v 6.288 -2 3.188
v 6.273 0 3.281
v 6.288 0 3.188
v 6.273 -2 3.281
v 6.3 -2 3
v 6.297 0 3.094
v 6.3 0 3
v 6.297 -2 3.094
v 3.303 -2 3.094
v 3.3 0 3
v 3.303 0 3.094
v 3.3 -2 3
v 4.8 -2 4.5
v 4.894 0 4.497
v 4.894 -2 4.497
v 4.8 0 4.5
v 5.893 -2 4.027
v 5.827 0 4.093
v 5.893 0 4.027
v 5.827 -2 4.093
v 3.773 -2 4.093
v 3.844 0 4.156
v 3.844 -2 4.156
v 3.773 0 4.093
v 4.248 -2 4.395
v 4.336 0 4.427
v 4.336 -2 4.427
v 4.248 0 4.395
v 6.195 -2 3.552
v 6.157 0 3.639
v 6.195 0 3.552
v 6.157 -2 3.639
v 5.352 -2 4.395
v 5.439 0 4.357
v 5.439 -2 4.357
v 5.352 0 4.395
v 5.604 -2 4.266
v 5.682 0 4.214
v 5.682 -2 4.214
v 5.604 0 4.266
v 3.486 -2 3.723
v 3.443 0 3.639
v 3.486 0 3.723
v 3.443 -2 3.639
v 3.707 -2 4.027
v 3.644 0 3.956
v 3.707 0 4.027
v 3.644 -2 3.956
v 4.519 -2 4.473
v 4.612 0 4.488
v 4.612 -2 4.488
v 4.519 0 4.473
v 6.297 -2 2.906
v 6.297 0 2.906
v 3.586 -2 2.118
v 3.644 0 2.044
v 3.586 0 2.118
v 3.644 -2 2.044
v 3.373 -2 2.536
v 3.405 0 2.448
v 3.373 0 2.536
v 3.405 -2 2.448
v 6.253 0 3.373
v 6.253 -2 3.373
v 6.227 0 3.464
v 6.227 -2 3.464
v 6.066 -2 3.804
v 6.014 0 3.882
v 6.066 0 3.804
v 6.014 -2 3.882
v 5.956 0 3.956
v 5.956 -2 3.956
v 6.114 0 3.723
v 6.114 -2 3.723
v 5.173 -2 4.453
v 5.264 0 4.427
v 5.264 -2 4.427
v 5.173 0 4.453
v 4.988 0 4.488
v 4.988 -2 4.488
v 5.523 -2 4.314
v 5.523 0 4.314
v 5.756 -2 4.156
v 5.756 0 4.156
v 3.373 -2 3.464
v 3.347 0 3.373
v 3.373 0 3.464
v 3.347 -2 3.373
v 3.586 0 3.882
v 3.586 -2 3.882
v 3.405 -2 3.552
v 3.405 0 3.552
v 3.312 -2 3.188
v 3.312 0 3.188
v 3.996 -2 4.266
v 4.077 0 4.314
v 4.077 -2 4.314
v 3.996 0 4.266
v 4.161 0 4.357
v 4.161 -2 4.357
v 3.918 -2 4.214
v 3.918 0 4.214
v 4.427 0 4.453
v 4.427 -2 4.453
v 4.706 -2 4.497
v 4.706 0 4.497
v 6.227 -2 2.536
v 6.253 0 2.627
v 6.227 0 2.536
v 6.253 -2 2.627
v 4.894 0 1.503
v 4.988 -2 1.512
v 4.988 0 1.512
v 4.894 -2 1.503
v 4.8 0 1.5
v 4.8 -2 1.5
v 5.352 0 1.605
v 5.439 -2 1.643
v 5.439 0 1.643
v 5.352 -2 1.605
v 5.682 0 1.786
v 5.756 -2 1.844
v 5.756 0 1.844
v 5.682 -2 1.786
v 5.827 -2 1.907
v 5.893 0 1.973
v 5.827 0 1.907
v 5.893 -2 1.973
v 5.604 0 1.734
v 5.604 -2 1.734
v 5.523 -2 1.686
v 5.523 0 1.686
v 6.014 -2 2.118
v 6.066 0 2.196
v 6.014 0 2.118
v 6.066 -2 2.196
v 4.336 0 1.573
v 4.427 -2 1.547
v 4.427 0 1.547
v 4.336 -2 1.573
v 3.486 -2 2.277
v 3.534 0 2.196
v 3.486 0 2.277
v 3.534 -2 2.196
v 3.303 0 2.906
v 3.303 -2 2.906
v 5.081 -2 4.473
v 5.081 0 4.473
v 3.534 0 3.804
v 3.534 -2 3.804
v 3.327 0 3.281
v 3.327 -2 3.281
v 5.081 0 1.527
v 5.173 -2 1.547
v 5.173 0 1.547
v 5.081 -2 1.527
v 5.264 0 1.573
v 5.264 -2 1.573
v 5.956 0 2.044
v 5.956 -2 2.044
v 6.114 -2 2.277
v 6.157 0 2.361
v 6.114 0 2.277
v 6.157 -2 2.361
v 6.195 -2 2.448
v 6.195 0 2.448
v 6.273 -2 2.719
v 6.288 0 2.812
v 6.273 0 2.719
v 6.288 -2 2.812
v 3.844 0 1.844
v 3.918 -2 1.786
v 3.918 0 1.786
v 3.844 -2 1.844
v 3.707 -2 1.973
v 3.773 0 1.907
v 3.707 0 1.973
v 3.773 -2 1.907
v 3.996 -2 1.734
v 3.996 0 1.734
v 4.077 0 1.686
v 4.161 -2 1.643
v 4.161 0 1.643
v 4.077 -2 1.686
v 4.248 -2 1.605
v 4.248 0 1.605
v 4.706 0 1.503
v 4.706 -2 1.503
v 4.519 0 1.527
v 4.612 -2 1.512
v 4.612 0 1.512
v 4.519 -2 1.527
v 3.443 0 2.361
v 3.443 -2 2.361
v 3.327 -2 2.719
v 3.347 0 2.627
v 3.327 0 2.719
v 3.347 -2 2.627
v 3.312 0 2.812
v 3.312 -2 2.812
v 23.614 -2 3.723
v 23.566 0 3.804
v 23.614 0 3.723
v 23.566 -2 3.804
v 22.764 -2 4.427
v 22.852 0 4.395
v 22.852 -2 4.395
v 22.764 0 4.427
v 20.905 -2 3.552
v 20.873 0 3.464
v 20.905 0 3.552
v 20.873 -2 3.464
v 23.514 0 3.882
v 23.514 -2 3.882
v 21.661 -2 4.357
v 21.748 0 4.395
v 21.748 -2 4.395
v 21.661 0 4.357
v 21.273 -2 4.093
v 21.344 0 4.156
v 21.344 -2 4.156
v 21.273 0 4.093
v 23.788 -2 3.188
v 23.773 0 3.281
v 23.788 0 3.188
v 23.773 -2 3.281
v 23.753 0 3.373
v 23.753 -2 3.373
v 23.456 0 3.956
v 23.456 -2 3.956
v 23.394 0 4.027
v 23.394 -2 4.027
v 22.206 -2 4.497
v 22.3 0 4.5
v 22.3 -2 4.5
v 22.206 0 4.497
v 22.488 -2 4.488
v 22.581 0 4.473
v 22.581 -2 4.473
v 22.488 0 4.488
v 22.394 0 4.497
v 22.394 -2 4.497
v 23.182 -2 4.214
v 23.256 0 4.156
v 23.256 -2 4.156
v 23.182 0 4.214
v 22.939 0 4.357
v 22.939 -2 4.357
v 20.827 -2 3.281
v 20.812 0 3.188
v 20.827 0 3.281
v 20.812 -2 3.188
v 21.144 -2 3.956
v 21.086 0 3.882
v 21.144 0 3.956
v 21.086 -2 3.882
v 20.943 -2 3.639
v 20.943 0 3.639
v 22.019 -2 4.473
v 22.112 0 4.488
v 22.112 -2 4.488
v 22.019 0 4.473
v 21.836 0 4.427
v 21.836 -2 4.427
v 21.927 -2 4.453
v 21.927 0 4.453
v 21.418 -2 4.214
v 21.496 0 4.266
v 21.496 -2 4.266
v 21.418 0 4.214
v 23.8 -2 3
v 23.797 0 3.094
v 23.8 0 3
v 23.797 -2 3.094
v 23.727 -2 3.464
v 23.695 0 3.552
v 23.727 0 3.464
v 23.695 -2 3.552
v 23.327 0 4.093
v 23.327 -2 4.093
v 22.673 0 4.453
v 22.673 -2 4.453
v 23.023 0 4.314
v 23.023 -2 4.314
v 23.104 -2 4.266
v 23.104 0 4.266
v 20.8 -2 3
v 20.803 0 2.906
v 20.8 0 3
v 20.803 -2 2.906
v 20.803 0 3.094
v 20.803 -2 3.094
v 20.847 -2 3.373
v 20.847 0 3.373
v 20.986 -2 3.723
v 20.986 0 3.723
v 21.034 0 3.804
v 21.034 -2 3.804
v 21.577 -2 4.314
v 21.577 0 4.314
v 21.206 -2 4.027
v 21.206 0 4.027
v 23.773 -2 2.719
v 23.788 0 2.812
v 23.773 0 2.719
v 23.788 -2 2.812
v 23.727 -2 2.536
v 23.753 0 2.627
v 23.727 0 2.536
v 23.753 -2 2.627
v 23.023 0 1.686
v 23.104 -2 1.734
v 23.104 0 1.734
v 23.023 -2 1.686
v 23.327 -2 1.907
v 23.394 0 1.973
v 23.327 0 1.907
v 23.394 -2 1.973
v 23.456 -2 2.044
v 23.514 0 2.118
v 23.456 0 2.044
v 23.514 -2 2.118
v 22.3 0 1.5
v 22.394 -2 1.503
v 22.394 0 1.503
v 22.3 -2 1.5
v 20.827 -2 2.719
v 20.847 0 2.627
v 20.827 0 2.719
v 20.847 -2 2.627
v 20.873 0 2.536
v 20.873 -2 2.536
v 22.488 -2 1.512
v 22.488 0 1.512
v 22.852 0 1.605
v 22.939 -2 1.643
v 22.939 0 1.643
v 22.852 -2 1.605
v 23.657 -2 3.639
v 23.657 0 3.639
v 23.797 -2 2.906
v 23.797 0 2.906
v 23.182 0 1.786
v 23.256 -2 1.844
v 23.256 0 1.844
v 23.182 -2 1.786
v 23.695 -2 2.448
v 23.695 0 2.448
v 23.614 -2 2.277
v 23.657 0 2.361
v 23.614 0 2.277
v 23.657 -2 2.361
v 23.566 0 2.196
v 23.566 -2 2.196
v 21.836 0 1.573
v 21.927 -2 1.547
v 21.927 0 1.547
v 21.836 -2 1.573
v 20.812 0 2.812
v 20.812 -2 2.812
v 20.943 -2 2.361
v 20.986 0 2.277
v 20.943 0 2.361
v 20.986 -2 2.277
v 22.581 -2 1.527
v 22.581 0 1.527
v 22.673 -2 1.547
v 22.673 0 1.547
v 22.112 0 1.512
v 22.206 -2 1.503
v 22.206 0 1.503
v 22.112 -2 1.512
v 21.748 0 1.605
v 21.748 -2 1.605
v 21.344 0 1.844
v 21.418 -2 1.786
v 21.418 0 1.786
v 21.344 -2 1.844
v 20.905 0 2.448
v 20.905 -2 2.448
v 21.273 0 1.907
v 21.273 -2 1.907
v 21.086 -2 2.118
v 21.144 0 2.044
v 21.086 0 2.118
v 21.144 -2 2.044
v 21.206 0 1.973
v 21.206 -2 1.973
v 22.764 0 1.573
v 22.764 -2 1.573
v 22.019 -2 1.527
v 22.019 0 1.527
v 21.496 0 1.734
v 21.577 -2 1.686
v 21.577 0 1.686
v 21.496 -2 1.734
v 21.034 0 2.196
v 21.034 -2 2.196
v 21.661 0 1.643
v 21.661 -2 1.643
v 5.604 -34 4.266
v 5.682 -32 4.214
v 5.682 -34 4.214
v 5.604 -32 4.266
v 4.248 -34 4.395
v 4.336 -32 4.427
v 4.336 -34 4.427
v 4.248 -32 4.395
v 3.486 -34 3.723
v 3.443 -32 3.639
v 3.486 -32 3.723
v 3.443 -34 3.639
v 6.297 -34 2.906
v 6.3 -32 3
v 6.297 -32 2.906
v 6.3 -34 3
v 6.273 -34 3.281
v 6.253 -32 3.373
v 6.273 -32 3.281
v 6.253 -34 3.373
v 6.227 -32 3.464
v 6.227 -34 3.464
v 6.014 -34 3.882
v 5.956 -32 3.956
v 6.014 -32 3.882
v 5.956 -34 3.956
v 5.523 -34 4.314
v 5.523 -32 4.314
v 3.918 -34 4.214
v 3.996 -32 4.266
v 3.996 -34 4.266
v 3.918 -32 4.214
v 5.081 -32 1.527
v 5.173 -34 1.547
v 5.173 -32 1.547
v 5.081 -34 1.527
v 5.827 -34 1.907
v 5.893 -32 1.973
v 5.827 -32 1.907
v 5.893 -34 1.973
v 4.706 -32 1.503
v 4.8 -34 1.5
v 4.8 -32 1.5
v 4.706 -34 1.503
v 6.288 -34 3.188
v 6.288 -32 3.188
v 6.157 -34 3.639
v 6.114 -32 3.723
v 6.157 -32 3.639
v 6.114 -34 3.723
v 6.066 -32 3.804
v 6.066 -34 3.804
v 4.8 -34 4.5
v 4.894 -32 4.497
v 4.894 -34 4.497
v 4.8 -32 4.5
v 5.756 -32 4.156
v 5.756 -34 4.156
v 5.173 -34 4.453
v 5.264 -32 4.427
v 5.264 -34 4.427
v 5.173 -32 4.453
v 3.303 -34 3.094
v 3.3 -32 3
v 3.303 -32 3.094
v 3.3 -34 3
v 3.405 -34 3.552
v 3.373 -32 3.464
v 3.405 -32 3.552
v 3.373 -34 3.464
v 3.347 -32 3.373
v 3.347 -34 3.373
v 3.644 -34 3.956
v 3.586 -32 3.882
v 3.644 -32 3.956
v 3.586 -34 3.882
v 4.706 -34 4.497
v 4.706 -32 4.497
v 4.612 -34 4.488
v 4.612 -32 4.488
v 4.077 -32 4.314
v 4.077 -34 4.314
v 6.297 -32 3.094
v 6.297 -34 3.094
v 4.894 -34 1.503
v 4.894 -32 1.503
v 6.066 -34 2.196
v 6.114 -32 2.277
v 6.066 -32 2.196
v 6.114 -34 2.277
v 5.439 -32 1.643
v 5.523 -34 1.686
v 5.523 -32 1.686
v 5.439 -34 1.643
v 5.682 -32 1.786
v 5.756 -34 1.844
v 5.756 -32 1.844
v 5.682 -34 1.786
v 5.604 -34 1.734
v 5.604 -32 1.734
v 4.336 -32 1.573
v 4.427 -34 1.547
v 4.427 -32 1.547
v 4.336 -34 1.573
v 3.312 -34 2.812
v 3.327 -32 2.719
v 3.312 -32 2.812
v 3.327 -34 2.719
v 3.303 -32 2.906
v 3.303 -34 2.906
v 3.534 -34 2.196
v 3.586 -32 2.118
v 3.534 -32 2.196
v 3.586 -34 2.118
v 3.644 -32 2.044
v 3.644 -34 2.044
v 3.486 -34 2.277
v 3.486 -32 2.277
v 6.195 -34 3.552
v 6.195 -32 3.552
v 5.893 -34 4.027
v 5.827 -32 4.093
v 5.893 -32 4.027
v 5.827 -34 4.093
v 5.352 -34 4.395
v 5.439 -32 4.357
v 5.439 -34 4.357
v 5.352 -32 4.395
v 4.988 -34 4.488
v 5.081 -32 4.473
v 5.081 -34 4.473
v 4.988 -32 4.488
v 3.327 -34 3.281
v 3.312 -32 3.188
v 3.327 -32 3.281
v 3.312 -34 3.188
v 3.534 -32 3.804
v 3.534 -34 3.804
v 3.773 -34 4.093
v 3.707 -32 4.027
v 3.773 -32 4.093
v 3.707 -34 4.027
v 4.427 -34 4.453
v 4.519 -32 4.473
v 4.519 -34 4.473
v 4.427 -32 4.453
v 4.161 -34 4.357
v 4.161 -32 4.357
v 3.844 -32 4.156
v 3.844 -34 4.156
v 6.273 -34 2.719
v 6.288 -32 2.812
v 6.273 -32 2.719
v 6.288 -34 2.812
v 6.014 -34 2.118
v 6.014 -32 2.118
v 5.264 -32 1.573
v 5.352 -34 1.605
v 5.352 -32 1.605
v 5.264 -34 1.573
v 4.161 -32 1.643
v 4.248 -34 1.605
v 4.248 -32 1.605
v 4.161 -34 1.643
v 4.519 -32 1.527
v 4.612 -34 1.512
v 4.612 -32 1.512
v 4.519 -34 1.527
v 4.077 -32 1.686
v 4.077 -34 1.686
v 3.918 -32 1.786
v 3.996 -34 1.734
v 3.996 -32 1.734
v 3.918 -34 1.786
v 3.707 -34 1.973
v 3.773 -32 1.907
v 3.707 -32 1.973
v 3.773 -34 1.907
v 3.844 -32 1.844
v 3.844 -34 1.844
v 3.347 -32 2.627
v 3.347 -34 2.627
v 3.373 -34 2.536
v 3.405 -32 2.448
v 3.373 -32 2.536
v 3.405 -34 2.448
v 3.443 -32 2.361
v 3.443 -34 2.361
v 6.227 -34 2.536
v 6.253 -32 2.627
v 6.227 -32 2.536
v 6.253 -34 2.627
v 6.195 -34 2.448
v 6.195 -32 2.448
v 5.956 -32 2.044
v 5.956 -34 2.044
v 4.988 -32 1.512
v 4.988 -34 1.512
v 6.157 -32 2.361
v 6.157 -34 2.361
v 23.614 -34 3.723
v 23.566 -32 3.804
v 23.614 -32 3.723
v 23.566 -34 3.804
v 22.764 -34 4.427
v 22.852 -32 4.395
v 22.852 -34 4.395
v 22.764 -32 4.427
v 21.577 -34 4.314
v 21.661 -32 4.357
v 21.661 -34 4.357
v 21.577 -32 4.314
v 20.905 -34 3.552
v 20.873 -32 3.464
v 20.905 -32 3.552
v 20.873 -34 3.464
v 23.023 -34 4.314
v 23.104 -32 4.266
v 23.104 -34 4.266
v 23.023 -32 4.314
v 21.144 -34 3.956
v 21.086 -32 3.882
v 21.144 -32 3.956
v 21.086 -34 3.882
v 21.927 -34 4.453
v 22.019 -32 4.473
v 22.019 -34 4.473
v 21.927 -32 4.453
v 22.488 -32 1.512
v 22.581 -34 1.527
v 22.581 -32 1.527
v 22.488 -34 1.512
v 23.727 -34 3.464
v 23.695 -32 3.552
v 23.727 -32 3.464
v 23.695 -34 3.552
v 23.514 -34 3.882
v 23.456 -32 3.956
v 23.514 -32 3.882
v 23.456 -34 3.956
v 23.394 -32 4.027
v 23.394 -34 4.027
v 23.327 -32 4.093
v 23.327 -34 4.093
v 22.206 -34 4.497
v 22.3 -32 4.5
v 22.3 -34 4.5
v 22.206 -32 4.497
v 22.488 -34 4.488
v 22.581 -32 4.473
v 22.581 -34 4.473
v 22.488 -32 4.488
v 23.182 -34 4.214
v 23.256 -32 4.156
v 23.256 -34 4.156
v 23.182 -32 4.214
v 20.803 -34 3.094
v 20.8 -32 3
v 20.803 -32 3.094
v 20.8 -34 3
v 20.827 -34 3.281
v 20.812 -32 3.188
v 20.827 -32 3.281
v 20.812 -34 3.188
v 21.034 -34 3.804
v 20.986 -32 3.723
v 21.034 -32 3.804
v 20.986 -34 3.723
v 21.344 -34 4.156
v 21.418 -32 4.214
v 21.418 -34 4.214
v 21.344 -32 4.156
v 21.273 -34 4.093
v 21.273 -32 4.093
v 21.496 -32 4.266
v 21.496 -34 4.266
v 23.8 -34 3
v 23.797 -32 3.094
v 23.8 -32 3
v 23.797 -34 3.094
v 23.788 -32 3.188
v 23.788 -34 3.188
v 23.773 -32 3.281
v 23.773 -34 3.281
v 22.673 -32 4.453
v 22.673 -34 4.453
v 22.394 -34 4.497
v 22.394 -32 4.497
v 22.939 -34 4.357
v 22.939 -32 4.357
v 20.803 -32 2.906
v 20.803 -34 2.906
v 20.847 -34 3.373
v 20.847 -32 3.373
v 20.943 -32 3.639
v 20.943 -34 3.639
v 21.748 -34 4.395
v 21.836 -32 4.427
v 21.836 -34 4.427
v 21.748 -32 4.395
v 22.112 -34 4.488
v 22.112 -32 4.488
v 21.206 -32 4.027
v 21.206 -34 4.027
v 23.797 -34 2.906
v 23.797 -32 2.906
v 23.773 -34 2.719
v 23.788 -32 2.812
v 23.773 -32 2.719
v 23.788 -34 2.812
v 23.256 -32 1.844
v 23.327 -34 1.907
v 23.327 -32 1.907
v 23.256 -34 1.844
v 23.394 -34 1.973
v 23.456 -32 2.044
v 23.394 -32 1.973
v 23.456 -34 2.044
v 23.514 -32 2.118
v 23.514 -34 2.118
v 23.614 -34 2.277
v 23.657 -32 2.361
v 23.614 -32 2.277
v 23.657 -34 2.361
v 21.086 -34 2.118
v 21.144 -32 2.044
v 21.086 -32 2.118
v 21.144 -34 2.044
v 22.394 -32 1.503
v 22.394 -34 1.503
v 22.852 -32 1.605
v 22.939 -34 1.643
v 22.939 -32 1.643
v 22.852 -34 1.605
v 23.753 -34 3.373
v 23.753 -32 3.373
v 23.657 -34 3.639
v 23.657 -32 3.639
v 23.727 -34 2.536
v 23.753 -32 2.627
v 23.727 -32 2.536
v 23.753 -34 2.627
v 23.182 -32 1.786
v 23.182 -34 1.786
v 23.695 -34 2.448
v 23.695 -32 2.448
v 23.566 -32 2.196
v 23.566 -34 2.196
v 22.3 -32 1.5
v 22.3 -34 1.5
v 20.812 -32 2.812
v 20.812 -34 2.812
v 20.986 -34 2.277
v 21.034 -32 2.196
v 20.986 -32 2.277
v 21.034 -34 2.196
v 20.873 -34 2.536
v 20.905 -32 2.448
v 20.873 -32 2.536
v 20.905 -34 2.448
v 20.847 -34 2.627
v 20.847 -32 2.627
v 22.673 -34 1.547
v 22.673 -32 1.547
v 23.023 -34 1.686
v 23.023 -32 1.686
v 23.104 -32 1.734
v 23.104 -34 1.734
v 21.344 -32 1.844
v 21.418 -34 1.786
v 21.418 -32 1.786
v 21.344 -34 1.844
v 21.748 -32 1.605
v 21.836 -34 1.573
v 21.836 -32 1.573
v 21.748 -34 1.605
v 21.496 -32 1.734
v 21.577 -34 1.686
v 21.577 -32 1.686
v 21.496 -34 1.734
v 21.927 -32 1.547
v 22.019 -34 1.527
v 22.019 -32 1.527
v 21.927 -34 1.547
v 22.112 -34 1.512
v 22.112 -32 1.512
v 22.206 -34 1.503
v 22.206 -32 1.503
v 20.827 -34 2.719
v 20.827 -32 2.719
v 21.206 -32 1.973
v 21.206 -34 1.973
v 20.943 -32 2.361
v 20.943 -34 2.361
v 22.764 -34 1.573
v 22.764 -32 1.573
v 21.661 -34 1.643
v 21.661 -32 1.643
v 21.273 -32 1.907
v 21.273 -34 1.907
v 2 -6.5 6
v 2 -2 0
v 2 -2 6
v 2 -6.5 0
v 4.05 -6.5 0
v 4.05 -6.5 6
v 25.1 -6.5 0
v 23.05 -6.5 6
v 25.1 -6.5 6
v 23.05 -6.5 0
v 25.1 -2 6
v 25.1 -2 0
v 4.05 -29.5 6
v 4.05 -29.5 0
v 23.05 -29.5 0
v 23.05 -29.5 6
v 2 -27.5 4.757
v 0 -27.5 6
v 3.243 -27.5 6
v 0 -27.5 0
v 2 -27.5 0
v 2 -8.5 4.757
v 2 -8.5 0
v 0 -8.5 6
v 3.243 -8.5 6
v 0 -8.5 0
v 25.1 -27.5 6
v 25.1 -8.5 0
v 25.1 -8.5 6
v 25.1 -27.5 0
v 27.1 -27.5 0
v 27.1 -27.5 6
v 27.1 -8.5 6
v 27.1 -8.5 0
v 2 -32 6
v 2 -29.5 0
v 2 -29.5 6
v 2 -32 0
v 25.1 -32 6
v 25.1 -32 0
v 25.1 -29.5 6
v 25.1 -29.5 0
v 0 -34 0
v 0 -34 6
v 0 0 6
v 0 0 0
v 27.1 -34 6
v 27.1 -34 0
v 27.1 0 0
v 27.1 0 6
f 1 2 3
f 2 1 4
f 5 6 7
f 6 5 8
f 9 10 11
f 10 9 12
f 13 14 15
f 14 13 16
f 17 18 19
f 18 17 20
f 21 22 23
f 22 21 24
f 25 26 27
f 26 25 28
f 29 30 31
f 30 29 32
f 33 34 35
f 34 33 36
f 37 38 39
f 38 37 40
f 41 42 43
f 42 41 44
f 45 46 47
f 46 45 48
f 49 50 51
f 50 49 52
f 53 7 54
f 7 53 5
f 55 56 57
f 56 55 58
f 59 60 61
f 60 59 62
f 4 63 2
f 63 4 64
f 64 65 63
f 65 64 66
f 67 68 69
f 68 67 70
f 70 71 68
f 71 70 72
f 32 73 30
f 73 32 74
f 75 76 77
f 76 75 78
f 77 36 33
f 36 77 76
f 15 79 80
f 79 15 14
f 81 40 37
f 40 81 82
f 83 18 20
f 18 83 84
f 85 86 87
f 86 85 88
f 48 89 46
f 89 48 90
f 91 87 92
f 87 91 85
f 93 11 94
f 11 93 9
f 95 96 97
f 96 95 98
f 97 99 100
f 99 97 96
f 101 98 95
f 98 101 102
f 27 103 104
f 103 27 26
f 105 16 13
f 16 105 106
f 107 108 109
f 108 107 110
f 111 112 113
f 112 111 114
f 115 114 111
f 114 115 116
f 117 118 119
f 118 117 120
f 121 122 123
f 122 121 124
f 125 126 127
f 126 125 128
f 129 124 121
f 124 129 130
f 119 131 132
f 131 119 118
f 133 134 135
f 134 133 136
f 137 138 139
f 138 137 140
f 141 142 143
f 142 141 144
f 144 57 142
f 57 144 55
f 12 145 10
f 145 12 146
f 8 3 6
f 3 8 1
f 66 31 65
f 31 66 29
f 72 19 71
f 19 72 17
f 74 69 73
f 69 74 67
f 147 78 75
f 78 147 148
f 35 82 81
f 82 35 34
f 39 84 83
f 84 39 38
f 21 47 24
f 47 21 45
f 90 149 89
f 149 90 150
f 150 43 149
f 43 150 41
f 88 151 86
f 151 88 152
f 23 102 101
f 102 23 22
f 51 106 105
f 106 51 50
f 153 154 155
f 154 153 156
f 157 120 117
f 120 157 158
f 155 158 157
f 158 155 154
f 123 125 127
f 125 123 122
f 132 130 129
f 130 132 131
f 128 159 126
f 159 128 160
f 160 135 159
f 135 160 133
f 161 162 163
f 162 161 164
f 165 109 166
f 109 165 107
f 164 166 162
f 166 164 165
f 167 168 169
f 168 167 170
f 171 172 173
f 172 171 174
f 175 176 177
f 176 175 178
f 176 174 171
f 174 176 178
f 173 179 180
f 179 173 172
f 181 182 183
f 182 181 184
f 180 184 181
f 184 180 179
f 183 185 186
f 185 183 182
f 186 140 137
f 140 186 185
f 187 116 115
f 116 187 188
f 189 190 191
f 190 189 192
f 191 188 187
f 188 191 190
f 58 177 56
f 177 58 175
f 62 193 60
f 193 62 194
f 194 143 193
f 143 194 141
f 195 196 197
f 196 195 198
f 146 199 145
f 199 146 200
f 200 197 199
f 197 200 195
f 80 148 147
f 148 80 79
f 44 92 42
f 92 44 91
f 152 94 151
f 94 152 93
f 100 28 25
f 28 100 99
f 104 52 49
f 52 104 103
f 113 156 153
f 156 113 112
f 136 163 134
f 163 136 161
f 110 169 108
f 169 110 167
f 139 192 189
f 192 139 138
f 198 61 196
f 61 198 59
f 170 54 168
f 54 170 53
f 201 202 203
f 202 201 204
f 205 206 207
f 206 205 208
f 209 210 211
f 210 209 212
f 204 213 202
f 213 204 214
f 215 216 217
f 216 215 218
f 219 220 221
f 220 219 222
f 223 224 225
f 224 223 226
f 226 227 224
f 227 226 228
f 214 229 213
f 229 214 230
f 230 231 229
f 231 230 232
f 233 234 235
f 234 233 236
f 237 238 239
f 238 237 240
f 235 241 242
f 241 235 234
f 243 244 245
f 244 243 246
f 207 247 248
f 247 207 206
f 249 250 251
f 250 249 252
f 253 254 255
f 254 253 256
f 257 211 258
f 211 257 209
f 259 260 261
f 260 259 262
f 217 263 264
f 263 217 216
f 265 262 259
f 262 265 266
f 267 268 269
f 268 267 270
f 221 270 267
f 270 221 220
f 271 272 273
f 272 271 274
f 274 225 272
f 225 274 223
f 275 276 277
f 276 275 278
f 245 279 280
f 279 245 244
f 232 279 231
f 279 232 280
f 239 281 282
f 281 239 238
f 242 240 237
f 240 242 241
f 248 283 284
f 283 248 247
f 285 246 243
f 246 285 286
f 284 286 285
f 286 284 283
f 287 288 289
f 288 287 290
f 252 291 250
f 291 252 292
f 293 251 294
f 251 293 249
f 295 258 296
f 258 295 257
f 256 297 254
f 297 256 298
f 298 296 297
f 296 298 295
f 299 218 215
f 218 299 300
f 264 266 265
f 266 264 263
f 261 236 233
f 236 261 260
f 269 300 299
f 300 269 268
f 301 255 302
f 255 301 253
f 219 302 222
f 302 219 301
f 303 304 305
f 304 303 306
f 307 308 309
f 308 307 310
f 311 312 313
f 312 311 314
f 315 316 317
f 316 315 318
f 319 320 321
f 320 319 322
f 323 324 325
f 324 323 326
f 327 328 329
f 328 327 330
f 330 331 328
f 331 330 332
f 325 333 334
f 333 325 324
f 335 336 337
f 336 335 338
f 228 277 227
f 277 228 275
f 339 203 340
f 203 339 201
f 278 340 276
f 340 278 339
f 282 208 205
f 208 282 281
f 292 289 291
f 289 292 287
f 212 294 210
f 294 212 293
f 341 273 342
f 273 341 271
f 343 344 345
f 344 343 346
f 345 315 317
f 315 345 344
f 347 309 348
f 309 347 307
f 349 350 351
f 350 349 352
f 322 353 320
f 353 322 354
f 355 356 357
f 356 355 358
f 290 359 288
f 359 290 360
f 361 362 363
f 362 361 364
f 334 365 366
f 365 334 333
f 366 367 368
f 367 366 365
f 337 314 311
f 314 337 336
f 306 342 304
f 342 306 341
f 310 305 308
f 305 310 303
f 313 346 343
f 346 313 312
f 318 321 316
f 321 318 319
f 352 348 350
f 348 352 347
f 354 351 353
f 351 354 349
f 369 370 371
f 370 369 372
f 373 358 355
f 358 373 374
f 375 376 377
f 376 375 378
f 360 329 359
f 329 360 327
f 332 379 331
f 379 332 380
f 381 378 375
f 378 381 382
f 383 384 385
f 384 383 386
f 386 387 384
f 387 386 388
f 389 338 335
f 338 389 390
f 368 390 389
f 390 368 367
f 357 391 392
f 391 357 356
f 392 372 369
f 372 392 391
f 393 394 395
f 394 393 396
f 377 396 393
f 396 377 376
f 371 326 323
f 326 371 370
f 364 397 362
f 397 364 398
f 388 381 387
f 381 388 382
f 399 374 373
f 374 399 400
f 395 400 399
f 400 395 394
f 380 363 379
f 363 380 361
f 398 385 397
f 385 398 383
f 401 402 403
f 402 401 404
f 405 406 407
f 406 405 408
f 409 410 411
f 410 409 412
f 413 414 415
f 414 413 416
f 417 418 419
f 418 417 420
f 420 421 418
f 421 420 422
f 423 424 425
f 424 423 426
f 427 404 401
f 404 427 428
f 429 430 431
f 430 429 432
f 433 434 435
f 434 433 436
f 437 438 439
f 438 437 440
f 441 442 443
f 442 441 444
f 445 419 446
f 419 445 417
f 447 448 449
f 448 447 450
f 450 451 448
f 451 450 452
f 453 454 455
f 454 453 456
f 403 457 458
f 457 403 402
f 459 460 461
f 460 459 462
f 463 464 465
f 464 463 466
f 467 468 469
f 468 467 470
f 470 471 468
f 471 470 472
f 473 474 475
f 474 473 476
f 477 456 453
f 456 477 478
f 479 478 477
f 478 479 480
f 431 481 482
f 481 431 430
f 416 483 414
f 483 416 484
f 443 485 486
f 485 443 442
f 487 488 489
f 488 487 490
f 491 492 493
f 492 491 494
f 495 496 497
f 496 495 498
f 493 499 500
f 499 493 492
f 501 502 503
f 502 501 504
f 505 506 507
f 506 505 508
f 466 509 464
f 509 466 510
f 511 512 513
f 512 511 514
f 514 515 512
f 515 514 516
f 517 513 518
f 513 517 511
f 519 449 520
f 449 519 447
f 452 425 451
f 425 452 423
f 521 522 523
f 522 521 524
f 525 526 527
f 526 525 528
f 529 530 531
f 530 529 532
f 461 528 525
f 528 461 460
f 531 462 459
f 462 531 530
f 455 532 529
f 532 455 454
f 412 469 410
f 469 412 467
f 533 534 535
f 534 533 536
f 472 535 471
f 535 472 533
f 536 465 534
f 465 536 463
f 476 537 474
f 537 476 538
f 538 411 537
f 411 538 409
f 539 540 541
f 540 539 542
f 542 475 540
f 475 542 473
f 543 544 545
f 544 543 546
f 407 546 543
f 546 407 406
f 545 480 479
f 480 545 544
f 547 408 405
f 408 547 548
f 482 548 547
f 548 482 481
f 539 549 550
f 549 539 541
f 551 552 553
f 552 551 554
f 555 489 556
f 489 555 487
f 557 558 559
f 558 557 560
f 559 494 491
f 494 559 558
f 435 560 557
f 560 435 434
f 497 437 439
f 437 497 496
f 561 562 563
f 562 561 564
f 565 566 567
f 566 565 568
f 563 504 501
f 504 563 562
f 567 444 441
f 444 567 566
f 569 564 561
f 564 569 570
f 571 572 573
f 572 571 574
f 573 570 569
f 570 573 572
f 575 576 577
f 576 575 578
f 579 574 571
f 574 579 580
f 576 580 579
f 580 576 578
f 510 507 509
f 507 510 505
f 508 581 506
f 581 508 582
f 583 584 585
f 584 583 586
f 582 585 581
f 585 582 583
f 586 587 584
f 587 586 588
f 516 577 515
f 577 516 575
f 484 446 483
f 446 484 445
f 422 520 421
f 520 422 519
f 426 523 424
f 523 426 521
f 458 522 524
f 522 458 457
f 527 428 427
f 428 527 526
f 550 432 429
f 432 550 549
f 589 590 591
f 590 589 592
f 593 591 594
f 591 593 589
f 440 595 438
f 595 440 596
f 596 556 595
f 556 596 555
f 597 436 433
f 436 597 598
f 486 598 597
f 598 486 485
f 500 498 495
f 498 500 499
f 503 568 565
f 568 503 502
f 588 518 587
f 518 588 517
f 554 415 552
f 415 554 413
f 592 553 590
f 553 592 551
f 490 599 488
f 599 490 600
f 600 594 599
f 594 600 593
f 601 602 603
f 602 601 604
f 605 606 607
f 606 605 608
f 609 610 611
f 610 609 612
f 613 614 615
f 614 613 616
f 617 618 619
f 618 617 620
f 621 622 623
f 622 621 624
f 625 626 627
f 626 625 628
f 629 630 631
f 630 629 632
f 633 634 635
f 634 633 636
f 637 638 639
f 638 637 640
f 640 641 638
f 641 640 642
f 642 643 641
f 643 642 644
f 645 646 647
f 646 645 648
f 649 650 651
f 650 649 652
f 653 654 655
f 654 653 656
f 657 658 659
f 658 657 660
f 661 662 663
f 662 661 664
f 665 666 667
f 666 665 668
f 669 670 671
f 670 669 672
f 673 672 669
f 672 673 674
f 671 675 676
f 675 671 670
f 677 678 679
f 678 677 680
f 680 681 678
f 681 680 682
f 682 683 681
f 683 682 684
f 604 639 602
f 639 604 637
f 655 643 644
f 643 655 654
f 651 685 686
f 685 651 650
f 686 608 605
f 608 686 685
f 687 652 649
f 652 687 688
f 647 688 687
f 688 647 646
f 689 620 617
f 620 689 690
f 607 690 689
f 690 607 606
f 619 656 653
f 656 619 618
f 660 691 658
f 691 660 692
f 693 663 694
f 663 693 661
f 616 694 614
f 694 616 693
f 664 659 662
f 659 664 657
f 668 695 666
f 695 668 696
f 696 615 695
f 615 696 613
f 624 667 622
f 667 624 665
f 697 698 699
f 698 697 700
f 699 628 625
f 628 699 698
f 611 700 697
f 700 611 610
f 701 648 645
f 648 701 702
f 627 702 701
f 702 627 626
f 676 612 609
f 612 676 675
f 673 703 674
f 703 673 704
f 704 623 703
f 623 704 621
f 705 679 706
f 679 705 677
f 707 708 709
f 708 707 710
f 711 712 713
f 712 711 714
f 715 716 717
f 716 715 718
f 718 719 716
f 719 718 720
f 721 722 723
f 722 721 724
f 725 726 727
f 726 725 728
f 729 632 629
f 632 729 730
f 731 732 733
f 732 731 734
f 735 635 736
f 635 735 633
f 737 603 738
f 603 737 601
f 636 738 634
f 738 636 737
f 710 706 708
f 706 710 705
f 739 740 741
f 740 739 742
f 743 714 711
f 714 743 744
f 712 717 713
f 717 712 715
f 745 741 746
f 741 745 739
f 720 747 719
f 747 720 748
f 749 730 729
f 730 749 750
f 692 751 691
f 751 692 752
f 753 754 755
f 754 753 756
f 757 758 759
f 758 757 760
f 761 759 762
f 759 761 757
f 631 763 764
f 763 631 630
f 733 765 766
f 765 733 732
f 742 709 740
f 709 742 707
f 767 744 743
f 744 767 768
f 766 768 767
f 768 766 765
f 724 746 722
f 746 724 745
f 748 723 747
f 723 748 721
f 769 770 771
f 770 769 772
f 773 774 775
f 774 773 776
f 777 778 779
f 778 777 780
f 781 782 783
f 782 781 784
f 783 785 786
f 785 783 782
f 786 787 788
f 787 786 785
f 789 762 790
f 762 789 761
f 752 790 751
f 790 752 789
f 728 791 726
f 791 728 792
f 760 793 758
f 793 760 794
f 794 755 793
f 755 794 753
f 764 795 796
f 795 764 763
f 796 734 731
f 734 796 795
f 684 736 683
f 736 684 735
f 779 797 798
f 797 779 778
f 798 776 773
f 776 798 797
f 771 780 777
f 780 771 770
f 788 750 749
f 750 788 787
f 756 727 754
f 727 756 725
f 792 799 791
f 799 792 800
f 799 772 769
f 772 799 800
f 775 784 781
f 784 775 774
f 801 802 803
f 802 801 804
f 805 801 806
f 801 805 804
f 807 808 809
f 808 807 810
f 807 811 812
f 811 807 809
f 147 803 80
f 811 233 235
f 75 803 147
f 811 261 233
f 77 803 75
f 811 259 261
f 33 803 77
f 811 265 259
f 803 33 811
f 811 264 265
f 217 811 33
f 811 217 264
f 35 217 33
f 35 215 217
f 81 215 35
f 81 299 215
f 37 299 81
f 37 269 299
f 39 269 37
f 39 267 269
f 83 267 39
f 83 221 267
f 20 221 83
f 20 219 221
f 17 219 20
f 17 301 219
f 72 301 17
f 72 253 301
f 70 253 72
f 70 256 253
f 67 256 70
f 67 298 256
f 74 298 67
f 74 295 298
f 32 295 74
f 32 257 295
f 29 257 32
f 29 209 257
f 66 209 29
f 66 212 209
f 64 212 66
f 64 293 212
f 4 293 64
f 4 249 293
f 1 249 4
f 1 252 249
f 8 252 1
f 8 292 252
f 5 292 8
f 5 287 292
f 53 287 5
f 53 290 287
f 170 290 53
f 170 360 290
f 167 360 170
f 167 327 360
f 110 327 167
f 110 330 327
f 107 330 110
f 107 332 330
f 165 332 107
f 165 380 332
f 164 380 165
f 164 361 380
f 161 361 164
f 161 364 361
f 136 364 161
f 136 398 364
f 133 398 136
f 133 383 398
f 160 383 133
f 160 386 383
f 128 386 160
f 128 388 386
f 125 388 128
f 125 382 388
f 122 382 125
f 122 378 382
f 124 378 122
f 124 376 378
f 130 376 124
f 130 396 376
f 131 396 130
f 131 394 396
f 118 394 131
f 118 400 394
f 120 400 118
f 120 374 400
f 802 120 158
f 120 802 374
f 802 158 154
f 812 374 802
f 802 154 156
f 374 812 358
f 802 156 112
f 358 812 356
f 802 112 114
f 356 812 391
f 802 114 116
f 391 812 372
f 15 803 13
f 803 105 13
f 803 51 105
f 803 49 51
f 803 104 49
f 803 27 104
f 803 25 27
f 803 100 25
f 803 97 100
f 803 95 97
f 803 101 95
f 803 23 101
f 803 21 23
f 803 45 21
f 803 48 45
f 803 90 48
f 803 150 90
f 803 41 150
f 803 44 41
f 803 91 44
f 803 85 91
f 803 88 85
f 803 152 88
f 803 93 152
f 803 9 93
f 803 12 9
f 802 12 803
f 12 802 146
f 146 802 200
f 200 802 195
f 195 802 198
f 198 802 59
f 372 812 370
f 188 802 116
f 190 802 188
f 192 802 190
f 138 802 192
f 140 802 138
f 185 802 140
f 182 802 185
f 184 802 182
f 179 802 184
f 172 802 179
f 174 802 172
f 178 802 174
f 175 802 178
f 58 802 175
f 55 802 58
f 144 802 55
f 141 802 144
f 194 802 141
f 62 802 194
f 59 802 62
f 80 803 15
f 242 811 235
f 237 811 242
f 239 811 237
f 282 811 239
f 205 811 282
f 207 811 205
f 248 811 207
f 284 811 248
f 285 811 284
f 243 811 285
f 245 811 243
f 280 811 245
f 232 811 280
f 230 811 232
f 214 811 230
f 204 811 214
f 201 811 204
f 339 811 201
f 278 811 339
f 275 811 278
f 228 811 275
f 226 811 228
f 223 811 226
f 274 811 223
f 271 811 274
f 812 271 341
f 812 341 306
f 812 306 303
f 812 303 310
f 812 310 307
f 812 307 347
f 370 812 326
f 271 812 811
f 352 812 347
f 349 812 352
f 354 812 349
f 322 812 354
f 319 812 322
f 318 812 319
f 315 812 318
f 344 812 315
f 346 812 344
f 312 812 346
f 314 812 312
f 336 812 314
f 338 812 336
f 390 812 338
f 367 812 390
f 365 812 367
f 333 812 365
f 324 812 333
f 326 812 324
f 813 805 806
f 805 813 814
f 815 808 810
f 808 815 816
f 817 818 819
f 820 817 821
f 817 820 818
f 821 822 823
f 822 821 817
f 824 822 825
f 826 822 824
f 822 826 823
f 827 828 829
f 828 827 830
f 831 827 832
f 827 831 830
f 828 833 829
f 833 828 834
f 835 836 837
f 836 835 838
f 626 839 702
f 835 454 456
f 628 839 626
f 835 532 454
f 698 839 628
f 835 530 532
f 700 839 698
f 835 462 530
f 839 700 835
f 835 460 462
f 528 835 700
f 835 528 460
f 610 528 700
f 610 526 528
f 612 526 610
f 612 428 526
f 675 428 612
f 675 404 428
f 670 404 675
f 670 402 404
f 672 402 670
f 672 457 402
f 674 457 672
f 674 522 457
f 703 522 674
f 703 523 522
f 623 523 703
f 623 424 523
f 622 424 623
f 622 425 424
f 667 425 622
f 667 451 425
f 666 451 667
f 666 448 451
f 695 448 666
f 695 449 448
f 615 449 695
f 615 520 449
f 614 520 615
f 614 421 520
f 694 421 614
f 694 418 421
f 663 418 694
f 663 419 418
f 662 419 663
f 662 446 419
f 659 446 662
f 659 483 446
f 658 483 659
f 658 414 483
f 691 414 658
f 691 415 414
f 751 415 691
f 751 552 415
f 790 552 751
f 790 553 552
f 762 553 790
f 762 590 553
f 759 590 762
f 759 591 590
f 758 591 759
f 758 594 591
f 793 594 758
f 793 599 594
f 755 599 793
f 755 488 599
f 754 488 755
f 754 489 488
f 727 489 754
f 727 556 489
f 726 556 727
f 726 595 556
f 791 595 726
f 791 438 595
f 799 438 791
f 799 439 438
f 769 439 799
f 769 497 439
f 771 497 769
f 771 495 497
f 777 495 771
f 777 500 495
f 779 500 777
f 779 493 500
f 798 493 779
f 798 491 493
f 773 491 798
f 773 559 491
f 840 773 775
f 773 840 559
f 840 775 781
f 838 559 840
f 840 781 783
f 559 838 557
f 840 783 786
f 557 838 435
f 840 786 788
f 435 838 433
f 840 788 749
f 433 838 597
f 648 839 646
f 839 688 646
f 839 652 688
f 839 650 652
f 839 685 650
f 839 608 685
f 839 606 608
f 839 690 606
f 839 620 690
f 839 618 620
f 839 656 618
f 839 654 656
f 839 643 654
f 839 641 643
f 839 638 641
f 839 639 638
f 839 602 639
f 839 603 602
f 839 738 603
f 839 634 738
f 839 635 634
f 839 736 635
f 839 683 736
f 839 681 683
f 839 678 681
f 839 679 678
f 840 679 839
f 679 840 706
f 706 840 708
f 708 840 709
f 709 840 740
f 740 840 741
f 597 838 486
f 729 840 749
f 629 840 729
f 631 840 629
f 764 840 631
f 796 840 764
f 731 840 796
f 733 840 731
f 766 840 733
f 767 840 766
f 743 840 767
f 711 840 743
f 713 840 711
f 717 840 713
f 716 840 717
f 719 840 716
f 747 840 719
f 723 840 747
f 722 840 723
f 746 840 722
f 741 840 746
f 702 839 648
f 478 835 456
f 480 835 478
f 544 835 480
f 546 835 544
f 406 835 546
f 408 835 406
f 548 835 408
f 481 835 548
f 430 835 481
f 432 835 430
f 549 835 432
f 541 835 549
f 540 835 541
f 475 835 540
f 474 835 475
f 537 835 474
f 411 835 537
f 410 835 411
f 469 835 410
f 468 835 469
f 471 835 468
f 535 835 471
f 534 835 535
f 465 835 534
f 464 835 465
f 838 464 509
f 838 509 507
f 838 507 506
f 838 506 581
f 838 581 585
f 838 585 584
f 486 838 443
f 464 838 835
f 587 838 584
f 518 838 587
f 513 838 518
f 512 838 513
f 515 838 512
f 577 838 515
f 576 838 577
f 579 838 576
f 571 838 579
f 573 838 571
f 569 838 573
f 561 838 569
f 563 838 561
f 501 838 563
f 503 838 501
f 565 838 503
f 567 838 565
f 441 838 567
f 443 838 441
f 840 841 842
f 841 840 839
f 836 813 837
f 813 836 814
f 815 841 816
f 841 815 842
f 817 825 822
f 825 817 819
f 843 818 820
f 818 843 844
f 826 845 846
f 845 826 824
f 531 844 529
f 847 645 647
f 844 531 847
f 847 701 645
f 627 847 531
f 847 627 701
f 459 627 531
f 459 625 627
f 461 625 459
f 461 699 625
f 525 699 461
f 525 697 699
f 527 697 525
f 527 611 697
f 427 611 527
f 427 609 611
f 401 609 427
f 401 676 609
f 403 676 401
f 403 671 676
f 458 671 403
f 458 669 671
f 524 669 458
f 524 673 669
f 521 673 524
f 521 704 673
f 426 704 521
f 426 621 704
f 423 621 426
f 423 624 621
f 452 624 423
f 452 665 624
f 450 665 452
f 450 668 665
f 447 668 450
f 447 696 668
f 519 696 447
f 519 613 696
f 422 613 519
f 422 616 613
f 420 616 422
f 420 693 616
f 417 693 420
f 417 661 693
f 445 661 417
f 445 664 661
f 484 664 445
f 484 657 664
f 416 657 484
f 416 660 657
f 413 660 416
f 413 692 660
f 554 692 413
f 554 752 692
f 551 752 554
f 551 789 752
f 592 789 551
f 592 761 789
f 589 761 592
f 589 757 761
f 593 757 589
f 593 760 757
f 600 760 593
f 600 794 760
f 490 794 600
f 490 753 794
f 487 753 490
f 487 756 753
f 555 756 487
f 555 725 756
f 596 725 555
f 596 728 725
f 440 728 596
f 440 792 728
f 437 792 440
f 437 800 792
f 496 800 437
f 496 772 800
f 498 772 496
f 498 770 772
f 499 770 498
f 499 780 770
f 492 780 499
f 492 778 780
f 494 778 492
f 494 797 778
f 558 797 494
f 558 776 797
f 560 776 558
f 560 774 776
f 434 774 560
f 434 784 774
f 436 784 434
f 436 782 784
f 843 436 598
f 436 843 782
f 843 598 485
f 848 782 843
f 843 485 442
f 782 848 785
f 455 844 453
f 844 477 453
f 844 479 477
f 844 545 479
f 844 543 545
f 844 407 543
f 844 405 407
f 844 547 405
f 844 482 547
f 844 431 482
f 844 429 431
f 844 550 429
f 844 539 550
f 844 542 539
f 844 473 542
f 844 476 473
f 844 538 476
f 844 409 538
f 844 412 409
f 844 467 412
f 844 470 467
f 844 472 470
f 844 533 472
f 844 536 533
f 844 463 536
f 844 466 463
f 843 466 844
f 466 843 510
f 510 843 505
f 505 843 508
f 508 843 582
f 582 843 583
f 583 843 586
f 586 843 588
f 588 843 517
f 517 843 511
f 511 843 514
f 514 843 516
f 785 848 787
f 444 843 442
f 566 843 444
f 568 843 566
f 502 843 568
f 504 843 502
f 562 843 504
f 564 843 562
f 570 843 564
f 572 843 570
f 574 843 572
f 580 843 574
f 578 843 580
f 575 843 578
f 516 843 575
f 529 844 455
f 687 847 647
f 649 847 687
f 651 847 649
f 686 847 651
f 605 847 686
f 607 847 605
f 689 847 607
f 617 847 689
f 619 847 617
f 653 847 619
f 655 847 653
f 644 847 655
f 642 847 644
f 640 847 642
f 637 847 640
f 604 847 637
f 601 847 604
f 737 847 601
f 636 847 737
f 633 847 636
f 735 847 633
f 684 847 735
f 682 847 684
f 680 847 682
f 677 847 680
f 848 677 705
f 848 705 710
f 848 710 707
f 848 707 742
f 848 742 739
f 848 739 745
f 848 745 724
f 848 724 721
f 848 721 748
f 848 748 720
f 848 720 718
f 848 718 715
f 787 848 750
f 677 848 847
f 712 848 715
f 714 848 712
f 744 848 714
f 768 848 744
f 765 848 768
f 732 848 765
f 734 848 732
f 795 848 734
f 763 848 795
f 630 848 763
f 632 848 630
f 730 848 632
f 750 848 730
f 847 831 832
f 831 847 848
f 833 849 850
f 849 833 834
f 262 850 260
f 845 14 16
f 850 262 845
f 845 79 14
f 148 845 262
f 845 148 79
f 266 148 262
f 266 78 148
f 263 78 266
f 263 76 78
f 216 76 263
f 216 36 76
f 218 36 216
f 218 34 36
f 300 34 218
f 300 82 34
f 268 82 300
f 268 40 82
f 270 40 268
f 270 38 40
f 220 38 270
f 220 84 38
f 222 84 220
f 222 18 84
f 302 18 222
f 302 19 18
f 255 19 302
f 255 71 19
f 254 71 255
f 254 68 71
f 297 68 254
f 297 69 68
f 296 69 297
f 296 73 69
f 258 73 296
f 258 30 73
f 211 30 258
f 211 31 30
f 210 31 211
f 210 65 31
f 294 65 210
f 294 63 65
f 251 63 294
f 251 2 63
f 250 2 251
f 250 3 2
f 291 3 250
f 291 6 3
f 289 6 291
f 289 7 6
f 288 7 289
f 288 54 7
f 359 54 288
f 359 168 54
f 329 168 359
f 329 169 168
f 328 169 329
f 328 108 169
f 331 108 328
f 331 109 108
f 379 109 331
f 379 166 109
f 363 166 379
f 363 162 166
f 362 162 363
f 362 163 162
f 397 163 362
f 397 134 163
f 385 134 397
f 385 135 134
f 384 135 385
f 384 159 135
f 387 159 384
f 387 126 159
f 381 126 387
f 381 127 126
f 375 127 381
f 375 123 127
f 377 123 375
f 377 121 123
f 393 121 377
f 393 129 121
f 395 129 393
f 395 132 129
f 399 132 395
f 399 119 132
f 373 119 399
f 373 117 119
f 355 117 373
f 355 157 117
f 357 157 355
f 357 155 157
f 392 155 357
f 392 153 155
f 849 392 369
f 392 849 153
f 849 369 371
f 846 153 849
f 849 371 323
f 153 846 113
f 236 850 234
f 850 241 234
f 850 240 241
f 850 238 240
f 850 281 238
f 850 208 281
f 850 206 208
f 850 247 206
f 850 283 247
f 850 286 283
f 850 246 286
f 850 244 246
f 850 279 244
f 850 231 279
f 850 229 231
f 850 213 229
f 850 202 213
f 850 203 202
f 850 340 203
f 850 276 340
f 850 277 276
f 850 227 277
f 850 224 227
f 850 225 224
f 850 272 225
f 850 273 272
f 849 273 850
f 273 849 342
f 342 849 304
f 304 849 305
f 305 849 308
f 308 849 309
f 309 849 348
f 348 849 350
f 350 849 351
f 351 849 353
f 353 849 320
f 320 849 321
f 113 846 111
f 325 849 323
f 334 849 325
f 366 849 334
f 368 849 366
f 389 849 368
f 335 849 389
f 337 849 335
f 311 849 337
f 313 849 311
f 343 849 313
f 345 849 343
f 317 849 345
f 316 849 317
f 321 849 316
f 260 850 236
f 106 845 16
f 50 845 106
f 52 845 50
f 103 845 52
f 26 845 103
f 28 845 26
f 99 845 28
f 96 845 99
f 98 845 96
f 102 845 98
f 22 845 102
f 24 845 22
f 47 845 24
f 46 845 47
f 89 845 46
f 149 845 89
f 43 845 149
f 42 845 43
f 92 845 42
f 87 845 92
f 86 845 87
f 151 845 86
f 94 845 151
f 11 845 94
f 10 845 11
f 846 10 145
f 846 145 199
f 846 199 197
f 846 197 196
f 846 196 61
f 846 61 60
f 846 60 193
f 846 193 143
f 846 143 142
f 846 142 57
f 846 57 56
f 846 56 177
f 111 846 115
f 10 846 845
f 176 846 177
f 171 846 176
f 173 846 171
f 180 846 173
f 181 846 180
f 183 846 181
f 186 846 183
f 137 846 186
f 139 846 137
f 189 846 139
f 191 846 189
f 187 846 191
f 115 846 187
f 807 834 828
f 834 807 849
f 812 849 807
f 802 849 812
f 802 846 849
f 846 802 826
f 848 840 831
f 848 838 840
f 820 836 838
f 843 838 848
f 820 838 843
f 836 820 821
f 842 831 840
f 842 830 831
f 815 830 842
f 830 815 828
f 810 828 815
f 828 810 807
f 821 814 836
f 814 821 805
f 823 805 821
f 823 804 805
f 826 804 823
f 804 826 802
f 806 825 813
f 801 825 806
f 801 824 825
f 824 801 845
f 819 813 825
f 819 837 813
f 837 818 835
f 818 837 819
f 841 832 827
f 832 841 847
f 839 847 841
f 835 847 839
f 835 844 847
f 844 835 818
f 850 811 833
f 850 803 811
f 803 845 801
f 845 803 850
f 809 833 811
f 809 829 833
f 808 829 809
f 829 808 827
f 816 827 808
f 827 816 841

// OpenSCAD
/*

    Designed to fit a Runcam Mini in place of the front supports.

    The big-stepped end is the top, the existing top-plate sits *inside* that.

    The small-stepped end is the bottom, and sits *on* the bottom plate.

    The steps are big enough to fit M3 x 2.5mm nuts. You'll have to drill your
    own holes in the side for the camera itself.

*/

// Settings.
edge_radius = 2.8;
hole_wide = 17.5;
thickness = 2;
bolt_hole_radius = 1.5;
cam_above = 11;
cam_below = 12;
nut_height = 2.5;
cam_width = 19;
ring_depth = 6;

// Derived.
cam_height = cam_above + cam_below;
frame_width = (edge_radius*2) + hole_wide;
ring_width = frame_width + (thickness*2);
ring_height = cam_above + cam_below + (nut_height * 2) + thickness * 3;
frame_top_down = thickness;
cam_top_down = frame_top_down + thickness + nut_height;
prop_top_down = cam_top_down + thickness;
feet_top_down = cam_top_down + cam_height;

// Make it!
rotate([90, 0, 0]) {
    ring();
}

module ring() {
    difference() {
        ringAdd();
        ringRemove();
    }
}

module ringAdd(){
    // outer box
    cube([ring_width, ring_depth, ring_height]);
}

module ringRemove(){
    translate([0, -1, 0]) {

        // frame top.
        translate([thickness, 0, frame_top_down]) {
            cube([frame_width, ring_depth + 2, thickness + nut_height]);
        }

        // Cam
        translate([((ring_width - cam_width) / 2), 0, cam_top_down - 1]){
            cube([cam_width, ring_depth + 2, cam_height + 2]);
        }

        // Props
        translate([-1, 0, prop_top_down]) {
            cube([thickness + 1, ring_depth + 2, cam_height - thickness*2]);
        }

        translate([ring_width-thickness, 0, prop_top_down]) {
            cube([thickness + 1, ring_depth + 2, cam_height - thickness*2]);
        }

        // Feet.
        translate([thickness, 0, feet_top_down]) {
            cube([frame_width, ring_depth + 2, nut_height]);
        }

        // Holes.
        translate([edge_radius + thickness, (ring_depth / 2) + 1, -1]) {
            cylinder(r=bolt_hole_radius, h=thickness+2, $fn=100);

            translate([hole_wide, 0, 0]) {
                cylinder(r=bolt_hole_radius, h=thickness+2, $fn=100);
            }
        }

        translate([edge_radius + thickness, (ring_depth / 2) + 1, feet_top_down + thickness - 1]) {
            cylinder(r=bolt_hole_radius, h=thickness+2, $fn=100);

            translate([hole_wide, 0, 0]) {
                cylinder(r=bolt_hole_radius, h=thickness+2, $fn=100);
            }
        }
    }

    // Prop clearance chamfers
    translate([-1, ring_depth, prop_top_down]) {
        rotate([0, 0, -45]) {
            cube([thickness + 1, thickness + 1, cam_height - thickness*2]);
        }
    }

}
